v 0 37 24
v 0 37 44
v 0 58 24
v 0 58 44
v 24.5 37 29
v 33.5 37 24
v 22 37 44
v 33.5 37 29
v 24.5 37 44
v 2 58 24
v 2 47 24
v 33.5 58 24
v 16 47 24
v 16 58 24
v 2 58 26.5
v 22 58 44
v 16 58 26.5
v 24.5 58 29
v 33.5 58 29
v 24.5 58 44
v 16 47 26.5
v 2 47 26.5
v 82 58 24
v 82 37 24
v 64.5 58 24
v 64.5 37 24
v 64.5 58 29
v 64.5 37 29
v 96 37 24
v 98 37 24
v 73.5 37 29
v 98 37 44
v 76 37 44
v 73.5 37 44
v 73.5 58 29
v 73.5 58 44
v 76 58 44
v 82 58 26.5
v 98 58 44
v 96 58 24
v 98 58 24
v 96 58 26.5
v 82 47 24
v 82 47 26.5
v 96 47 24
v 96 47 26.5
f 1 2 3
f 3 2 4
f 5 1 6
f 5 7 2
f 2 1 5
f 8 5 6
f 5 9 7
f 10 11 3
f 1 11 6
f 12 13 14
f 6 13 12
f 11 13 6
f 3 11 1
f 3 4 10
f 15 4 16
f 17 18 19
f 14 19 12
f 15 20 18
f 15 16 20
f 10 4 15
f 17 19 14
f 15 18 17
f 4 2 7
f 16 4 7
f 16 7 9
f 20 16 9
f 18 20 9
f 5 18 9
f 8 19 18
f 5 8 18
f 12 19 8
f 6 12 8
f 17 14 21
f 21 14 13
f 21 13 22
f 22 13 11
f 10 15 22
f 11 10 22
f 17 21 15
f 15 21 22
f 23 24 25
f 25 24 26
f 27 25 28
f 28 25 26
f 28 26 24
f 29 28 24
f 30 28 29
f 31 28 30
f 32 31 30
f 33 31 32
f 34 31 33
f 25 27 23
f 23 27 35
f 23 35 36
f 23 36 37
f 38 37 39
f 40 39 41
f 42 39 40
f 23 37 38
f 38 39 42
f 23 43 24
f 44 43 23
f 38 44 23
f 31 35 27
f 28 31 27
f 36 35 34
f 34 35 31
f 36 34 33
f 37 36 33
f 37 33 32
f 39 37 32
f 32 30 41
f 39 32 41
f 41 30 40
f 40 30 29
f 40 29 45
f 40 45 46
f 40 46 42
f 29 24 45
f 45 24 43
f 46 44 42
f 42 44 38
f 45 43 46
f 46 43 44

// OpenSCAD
/* Hive13 SumoBot Chassis/Frame */

// The front plow takes up a depth of 16.
// Some space is used for linesensor screw holes ~14mm

max_w = 98;
max_d = 98 - 16;

batterypack_w = 63;
batterypack_h = 15;
batterypack_d = 49;

bpack2_w = 54;
bpack2_h = 11;
bpack2_d = 31;

micro_w = 70;
micro_h = 15; // We just go to the top of the shield
micro_d = 54;

frame_w = max_w;
frame_h = 3;
frame_d = max_d;

// tire + motor thickness ~30 
wheel_radius = 15.5;
wheel_thickness = 14;
motor_w =14;
motor_h = 58;
motor_d = 20;
lip_w = motor_w;
lip_h = 18;
lip_d = 25;
lip_dist_from_bottom_motor = 40;
tire_distance = 9;
offset_w =2;

linesensor_spacing = 18;
linesensor_depth = 23;
frame_wheel_d = 36;
wheel_clearance = 15;
backwall_thickness = 15;

module baseframe() {
	difference() {
		union() {
		   cube([frame_w, frame_d, frame_h]);
		   // mounting tabs
		   translate(v=[(frame_w - bpack2_d) /2, frame_d, 0]) {
			difference() {
			   cube([bpack2_d,10 , frame_h+6]);
			   translate(v=[5, 5, 0]) {
				   cylinder(r = 2, h=frame_h+6);
			   }
			   translate(v=[bpack2_d-5, 5, 0]) {
				   cylinder(r = 2, h=frame_h+6);
			   }
			}
		   }
		   //translate(v=[frame_w-linesensor_spacing-10, frame_d, 0]) {
			//difference() {
			//   cube([10, 10, frame_h]);
			 //  translate(v=[5, 5, 0]) {
			//	   cylinder(r = 2, h=frame_h);
			 //  }
			//}
		  // }
		   // Wheel/Motor holder block
		  difference() // subtract out overhangs and wire section
		  {//Motor holder both sides.....
			  translate(v = [0,frame_wheel_d+1,frame_h]) {
				cube([frame_w, frame_d -(frame_wheel_d + linesensor_depth)-2,motor_d-1+offset_w]);// replace batterypack_h + bpack2_h + micro_h by motor_d -1
			  }
			  // Removes space over motors
			 // translate(v = [2,frame_wheel_d+1,frame_h +bpack2_h]) {
			//	cube([motor_w, frame_d -(frame_wheel_d + linesensor_depth-1), batterypack_h + micro_h]);
			 // }
			  //translate(v = [frame_w-motor_w-2,frame_wheel_d+1,frame_h +bpack2_h]) {
			//	cube([motor_w, frame_d -(frame_wheel_d + linesensor_depth-1), batterypack_h + micro_h]);
			 // }
			  // Remove area over batterypacks
			  translate(v = [(frame_w + batterypack_d) / 2, frame_d-batterypack_w, frame_h+bpack2_h+wheel_clearance]) {
				  rotate([0,0,90]) {
					batterypack();
				  }
			}

			translate(v = [(frame_w + bpack2_d) /2,frame_d-bpack2_w,frame_h]) {
				  rotate([0,0,90]) {
					  //bpack2();
					 cube([bpack2_w, bpack2_d, bpack2_h+wheel_clearance]);
				  }
			}
			 translate(v = [(frame_w - micro_d) / 2, frame_d-batterypack_w, frame_h+bpack2_h+batterypack_h+wheel_clearance]) {
				   cube([micro_d, batterypack_w, 40]);
			}

		  }
		  // Backwall
		  translate(v=[(frame_w + bpack2_d+10) /2-bpack2_d,frame_d-bpack2_w-backwall_thickness-2,frame_h]) {
			cube([bpack2_d-10, backwall_thickness, bpack2_h+wheel_clearance]);
		  }
		  // Backwall second piece
		  translate(v = [(frame_w + bpack2_d)/2-bpack2_d,10,frame_h]) {
			cube([bpack2_d, 7, bpack2_h+micro_h+batterypack_h]);
		  }
		} // union


		// Remove linesensor area
		translate(v = [0,frame_d-linesensor_depth,0]) {
			cube([linesensor_spacing, linesensor_depth, frame_h]);
		}
		translate(v = [frame_w - linesensor_spacing,frame_d-linesensor_depth,0]) {
			cube([linesensor_spacing, linesensor_depth, frame_h]);
		}
		// Remove tires
		translate(v = [0,0,0]) {
			cube([motor_w + wheel_thickness + 4, frame_wheel_d, frame_h]);
		}
		translate(v = [frame_w-motor_w-wheel_thickness-4,0,0]) {
			cube([motor_w + wheel_thickness + 4, frame_wheel_d, frame_h]);
		}
		// Remove unneeded space in the back
		translate(v =[(frame_w + bpack2_d-5) /2-bpack2_d,0,0]) {
			cube([bpack2_d+10, 10, frame_h]);
		}
                // Remove a hole for power switch
                translate(v = [frame_w-linesensor_spacing-15,frame_d-linesensor_depth,0]) {
                        cube([15, 23, frame_h]);
                }
		// This one is mainly for looks
		translate(v = [linesensor_spacing,frame_d-linesensor_depth,0]) {
			cube([15, 23, frame_h]);
		}
		// Remove the wheels
		// Right Tire
		translate(v = [max_w-2, 7,-motor_d+22+offset_w]) {
			rotate(a = [270, 180, 0]) {
				motor();
			}
		}
		// Left Tire
		translate(v = [2, 7, 22+offset_w]) {
			rotate(a = [270, 0, 0]) {
				motor();
			}
		}

	} // difference
}

module batterypack() {
  color([0, 127, 127, 255]) {
   cube([batterypack_w, batterypack_d, batterypack_h]);
  }
}

module bpack2() {
  color([127,127,0,255]) {
   cube([bpack2_w, bpack2_d, bpack2_h]);
  }
}

module micro() {
   cube([micro_w, micro_d, micro_h]);
}

module motor() {
  color([0,0,0,255]) {
     union() {
	   cube([motor_w, motor_d, motor_h]);
	  // Lip
	translate(v = [0, -(lip_d-motor_d)/2, lip_dist_from_bottom_motor]) {
		cube([lip_w, lip_d, lip_h]);
          }
	// wheel
         translate(v = [motor_w,motor_d/2,motor_d/2]) {
	    rotate(a = [90, 0, 90]) {
		cylinder(r = wheel_radius, h = wheel_thickness);
	    }
	}
      }
  }
}

module holder (){

translate(v = [0,frame_wheel_d+1,frame_h]) {
				cube([frame_w, frame_d -(frame_wheel_d + linesensor_depth)-2,batterypack_h + bpack2_h + micro_h]);// replace batterypack_h + bpack2_h + micro_h by motor_d-1+offset_w
			  }
}

module lower_holder (){

translate(v = [0,frame_wheel_d+1,frame_h]) {
				cube([frame_w, frame_d -(frame_wheel_d + linesensor_depth)-2,motor_d-1+offset_w]);// replace batterypack_h + bpack2_h + micro_h by motor_d-1+offset_w
			  }
}



//translate(v =[0,0,6]) {
difference(){
	holder();
	lower_holder();
				  // Remove area over batterypacks
			  translate(v = [(frame_w + batterypack_d) / 2, frame_d-batterypack_w, frame_h+bpack2_h+wheel_clearance]) {
				  rotate([0,0,90]) {
					batterypack();
				  }
			}

			translate(v = [(frame_w + bpack2_d) /2,frame_d-bpack2_w,frame_h]) {
				  rotate([0,0,90]) {
					  //bpack2();
					 cube([bpack2_w, bpack2_d, bpack2_h+wheel_clearance]);
				  }
			}
			 translate(v = [(frame_w - micro_d) / 2, frame_d-batterypack_w, frame_h+bpack2_h+batterypack_h+wheel_clearance]) {
				   cube([micro_d, batterypack_w, 40]);
			}
		// Remove the wheels
		// Right Tire
		translate(v = [max_w-2, 7,-motor_d+22+offset_w]) {
			rotate(a = [270, 180, 0]) {
				motor();
			}
		}
		// Left Tire
		translate(v = [2, 7, 22+offset_w]) {
			rotate(a = [270, 0, 0]) {
				motor();
			}
		}

}
























//****************** NOT USED**********************//

//max base
//cube([max_w, max_d, 1]);
/*
// Right Tire
translate(v = [max_w-2, 12, -1]) {//too close to axis
	rotate(a = [250, 180, 0]) {
		motor();
	}
}
// Left Tire
translate(v = [2, 5, 22]) {
	rotate(a = [290, 0, 0]) {
		motor();
	}
}

translate(v = [(frame_w + bpack2_d) /2,frame_d-bpack2_w,frame_h+6]) {
  rotate([0,0,90]) {
	  bpack2();
  }
}

translate(v = [(frame_w + batterypack_d) / 2, frame_d-batterypack_w, frame_h+6+bpack2_h+wheel_clearance]) {
  rotate([0,0,90]) {
	batterypack();
  }
}


*/
